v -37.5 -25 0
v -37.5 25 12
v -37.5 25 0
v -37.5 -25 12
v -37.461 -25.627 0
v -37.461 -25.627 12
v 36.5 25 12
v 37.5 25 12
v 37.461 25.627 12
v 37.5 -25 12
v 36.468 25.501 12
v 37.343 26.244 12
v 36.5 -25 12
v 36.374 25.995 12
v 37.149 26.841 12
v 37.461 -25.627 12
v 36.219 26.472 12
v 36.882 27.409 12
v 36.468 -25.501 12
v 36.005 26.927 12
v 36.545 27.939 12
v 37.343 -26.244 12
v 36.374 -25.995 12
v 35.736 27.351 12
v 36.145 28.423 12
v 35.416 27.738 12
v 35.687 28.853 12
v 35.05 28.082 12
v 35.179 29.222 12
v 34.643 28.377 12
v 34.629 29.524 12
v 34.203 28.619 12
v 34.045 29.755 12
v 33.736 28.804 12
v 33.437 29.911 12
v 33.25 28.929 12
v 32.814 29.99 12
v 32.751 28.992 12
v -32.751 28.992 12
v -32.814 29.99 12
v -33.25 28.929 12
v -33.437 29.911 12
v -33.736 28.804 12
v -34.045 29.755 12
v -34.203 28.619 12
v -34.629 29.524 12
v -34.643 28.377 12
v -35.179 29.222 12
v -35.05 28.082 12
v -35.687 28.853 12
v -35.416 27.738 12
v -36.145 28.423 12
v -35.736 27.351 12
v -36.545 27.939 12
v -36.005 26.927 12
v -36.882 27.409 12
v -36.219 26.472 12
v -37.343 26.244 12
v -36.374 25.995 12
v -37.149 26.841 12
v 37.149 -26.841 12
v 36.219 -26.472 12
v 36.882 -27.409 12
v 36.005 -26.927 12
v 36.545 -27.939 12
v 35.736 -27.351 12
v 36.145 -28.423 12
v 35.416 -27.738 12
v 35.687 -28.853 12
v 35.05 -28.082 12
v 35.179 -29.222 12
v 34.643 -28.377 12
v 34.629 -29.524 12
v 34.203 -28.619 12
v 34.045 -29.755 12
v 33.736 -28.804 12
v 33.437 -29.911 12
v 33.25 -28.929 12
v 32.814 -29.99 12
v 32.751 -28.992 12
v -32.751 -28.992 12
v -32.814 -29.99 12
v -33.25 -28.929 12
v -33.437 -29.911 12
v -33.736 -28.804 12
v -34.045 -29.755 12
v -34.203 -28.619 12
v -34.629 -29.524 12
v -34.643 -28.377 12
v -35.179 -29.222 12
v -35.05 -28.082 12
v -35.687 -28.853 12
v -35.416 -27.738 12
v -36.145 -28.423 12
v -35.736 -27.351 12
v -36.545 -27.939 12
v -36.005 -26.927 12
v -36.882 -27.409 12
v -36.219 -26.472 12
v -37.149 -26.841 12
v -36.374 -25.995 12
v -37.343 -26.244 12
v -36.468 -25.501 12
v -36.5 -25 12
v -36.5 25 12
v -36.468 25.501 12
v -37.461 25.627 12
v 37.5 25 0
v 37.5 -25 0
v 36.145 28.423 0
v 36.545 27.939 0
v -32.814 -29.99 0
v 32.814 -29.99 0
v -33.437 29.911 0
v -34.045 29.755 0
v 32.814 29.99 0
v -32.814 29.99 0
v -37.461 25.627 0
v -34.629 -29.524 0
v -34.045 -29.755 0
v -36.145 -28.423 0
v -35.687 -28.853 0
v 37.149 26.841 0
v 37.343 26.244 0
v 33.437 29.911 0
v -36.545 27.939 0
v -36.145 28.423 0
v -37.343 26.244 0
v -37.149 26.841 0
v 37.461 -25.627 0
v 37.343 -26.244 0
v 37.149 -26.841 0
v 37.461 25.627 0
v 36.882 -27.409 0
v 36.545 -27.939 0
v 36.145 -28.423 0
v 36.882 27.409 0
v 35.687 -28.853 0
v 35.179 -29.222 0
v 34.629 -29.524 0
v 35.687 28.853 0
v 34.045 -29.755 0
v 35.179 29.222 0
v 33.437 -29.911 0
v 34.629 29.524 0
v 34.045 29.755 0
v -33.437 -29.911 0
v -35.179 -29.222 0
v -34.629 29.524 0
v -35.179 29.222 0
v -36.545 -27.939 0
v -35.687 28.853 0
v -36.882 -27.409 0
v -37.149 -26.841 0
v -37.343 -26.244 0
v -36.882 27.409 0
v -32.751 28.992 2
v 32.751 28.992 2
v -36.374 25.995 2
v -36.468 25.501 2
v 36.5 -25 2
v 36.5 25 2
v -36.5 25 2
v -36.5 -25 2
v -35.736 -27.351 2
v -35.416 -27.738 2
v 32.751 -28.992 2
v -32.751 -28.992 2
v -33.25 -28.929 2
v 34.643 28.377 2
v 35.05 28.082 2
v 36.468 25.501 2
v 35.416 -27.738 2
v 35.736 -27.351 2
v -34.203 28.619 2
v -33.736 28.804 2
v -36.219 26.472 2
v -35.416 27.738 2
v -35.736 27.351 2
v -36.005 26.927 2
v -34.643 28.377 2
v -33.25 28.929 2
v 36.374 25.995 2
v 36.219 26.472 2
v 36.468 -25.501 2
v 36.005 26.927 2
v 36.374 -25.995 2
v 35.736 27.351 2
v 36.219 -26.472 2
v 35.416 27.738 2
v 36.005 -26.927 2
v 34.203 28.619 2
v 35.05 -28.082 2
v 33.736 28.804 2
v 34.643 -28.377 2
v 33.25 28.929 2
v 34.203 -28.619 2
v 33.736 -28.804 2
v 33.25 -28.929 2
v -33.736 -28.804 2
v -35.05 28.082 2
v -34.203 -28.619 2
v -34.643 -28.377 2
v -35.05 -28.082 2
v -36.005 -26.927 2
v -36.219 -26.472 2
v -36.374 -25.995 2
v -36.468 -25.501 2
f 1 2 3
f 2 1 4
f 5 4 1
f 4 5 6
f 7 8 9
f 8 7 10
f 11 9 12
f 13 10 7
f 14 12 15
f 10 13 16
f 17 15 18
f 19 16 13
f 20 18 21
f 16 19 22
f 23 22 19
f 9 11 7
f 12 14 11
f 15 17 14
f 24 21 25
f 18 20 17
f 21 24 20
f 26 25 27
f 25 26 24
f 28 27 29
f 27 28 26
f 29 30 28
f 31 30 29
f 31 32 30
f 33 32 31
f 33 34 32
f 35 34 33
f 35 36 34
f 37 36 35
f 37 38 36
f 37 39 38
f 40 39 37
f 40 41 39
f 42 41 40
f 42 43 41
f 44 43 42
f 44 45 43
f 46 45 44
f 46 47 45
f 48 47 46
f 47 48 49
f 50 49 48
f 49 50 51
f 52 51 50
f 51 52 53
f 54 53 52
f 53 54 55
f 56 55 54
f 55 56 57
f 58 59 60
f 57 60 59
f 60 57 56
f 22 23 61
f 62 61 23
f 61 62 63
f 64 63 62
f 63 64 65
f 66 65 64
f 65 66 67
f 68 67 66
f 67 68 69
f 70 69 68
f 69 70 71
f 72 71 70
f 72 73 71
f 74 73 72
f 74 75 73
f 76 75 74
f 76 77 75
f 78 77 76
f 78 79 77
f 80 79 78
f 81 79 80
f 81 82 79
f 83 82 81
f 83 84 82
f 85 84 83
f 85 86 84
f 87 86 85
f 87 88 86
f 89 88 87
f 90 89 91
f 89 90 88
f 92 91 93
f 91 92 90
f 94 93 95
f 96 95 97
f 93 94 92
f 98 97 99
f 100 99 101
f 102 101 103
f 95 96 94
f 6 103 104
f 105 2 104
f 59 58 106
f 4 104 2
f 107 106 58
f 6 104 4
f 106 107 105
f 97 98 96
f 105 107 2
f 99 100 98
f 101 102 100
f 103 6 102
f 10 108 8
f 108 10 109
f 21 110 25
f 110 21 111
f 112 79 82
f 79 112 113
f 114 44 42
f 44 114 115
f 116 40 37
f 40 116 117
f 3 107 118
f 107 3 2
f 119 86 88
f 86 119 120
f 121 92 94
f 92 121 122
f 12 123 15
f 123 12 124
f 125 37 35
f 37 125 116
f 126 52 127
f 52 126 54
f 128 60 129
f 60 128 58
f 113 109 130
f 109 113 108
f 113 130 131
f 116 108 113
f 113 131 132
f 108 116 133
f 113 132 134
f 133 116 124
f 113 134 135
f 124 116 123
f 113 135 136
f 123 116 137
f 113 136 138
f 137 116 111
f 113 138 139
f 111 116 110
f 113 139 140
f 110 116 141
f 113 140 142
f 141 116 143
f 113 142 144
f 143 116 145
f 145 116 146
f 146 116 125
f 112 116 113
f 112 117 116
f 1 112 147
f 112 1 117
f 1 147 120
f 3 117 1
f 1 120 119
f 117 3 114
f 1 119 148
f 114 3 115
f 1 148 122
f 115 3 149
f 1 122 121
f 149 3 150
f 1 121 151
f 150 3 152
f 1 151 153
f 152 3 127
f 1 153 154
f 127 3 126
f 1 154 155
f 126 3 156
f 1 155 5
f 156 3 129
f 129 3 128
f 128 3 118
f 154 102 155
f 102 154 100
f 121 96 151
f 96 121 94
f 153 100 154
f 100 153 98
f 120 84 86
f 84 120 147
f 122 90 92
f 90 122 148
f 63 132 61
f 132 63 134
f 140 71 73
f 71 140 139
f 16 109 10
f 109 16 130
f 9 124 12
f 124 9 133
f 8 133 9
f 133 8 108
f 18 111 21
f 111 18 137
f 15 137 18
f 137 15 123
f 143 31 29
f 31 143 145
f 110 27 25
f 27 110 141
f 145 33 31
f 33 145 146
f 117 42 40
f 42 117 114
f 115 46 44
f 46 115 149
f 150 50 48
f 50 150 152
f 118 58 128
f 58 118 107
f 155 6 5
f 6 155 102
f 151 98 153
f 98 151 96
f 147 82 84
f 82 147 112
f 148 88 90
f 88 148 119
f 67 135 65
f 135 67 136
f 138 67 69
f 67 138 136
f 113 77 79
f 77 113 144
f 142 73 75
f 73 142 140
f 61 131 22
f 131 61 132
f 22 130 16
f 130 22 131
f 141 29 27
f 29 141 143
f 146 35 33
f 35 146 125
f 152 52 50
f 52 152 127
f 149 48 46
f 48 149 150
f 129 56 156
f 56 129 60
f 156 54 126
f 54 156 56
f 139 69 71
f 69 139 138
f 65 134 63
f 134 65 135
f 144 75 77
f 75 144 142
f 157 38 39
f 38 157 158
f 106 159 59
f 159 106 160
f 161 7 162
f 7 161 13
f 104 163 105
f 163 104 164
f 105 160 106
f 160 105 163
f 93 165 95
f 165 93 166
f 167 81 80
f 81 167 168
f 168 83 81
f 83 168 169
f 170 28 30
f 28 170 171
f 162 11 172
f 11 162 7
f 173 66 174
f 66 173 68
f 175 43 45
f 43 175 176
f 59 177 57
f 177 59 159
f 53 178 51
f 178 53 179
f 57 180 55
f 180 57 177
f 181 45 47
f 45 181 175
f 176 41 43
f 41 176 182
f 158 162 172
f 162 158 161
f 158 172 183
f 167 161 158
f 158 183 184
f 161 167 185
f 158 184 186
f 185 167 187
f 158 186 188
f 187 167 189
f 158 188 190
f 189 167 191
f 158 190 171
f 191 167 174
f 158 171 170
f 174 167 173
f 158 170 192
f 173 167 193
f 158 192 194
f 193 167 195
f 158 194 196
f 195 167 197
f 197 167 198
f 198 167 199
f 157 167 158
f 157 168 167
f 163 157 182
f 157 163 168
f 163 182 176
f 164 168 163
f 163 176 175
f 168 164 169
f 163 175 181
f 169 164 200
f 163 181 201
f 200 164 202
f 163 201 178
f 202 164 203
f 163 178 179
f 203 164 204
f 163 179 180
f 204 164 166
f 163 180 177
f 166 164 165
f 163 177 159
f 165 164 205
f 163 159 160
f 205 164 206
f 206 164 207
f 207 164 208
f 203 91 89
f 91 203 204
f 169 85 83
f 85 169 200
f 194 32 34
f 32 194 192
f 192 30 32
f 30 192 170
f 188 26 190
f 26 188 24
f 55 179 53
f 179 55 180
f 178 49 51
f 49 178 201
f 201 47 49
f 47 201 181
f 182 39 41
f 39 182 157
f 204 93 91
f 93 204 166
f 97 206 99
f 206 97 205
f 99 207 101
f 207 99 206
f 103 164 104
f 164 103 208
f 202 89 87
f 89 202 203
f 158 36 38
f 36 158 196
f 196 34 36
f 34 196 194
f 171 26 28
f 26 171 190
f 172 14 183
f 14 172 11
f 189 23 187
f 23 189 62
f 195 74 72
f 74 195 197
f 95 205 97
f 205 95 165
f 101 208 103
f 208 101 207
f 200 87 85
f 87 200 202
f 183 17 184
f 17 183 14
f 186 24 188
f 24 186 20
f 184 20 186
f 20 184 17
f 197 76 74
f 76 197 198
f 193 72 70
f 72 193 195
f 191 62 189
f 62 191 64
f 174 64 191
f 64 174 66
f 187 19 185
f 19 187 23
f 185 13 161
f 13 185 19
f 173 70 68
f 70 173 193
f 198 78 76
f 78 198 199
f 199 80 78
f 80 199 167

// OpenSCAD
$fn = 50;


difference() {
	union() {
		hull() {
			translate(v = [-32.5000000000, 25.0000000000, 0]) {
				cylinder(h = 12, r = 5);
			}
			translate(v = [32.5000000000, 25.0000000000, 0]) {
				cylinder(h = 12, r = 5);
			}
			translate(v = [-32.5000000000, -25.0000000000, 0]) {
				cylinder(h = 12, r = 5);
			}
			translate(v = [32.5000000000, -25.0000000000, 0]) {
				cylinder(h = 12, r = 5);
			}
		}
	}
	union() {
		translate(v = [0, 0, 2]) {
			#hull() {
				translate(v = [-32.5000000000, 25.0000000000, 0]) {
					cylinder(h = 10, r = 4);
				}
				translate(v = [32.5000000000, 25.0000000000, 0]) {
					cylinder(h = 10, r = 4);
				}
				translate(v = [-32.5000000000, -25.0000000000, 0]) {
					cylinder(h = 10, r = 4);
				}
				translate(v = [32.5000000000, -25.0000000000, 0]) {
					cylinder(h = 10, r = 4);
				}
			}
		}
	}
}
